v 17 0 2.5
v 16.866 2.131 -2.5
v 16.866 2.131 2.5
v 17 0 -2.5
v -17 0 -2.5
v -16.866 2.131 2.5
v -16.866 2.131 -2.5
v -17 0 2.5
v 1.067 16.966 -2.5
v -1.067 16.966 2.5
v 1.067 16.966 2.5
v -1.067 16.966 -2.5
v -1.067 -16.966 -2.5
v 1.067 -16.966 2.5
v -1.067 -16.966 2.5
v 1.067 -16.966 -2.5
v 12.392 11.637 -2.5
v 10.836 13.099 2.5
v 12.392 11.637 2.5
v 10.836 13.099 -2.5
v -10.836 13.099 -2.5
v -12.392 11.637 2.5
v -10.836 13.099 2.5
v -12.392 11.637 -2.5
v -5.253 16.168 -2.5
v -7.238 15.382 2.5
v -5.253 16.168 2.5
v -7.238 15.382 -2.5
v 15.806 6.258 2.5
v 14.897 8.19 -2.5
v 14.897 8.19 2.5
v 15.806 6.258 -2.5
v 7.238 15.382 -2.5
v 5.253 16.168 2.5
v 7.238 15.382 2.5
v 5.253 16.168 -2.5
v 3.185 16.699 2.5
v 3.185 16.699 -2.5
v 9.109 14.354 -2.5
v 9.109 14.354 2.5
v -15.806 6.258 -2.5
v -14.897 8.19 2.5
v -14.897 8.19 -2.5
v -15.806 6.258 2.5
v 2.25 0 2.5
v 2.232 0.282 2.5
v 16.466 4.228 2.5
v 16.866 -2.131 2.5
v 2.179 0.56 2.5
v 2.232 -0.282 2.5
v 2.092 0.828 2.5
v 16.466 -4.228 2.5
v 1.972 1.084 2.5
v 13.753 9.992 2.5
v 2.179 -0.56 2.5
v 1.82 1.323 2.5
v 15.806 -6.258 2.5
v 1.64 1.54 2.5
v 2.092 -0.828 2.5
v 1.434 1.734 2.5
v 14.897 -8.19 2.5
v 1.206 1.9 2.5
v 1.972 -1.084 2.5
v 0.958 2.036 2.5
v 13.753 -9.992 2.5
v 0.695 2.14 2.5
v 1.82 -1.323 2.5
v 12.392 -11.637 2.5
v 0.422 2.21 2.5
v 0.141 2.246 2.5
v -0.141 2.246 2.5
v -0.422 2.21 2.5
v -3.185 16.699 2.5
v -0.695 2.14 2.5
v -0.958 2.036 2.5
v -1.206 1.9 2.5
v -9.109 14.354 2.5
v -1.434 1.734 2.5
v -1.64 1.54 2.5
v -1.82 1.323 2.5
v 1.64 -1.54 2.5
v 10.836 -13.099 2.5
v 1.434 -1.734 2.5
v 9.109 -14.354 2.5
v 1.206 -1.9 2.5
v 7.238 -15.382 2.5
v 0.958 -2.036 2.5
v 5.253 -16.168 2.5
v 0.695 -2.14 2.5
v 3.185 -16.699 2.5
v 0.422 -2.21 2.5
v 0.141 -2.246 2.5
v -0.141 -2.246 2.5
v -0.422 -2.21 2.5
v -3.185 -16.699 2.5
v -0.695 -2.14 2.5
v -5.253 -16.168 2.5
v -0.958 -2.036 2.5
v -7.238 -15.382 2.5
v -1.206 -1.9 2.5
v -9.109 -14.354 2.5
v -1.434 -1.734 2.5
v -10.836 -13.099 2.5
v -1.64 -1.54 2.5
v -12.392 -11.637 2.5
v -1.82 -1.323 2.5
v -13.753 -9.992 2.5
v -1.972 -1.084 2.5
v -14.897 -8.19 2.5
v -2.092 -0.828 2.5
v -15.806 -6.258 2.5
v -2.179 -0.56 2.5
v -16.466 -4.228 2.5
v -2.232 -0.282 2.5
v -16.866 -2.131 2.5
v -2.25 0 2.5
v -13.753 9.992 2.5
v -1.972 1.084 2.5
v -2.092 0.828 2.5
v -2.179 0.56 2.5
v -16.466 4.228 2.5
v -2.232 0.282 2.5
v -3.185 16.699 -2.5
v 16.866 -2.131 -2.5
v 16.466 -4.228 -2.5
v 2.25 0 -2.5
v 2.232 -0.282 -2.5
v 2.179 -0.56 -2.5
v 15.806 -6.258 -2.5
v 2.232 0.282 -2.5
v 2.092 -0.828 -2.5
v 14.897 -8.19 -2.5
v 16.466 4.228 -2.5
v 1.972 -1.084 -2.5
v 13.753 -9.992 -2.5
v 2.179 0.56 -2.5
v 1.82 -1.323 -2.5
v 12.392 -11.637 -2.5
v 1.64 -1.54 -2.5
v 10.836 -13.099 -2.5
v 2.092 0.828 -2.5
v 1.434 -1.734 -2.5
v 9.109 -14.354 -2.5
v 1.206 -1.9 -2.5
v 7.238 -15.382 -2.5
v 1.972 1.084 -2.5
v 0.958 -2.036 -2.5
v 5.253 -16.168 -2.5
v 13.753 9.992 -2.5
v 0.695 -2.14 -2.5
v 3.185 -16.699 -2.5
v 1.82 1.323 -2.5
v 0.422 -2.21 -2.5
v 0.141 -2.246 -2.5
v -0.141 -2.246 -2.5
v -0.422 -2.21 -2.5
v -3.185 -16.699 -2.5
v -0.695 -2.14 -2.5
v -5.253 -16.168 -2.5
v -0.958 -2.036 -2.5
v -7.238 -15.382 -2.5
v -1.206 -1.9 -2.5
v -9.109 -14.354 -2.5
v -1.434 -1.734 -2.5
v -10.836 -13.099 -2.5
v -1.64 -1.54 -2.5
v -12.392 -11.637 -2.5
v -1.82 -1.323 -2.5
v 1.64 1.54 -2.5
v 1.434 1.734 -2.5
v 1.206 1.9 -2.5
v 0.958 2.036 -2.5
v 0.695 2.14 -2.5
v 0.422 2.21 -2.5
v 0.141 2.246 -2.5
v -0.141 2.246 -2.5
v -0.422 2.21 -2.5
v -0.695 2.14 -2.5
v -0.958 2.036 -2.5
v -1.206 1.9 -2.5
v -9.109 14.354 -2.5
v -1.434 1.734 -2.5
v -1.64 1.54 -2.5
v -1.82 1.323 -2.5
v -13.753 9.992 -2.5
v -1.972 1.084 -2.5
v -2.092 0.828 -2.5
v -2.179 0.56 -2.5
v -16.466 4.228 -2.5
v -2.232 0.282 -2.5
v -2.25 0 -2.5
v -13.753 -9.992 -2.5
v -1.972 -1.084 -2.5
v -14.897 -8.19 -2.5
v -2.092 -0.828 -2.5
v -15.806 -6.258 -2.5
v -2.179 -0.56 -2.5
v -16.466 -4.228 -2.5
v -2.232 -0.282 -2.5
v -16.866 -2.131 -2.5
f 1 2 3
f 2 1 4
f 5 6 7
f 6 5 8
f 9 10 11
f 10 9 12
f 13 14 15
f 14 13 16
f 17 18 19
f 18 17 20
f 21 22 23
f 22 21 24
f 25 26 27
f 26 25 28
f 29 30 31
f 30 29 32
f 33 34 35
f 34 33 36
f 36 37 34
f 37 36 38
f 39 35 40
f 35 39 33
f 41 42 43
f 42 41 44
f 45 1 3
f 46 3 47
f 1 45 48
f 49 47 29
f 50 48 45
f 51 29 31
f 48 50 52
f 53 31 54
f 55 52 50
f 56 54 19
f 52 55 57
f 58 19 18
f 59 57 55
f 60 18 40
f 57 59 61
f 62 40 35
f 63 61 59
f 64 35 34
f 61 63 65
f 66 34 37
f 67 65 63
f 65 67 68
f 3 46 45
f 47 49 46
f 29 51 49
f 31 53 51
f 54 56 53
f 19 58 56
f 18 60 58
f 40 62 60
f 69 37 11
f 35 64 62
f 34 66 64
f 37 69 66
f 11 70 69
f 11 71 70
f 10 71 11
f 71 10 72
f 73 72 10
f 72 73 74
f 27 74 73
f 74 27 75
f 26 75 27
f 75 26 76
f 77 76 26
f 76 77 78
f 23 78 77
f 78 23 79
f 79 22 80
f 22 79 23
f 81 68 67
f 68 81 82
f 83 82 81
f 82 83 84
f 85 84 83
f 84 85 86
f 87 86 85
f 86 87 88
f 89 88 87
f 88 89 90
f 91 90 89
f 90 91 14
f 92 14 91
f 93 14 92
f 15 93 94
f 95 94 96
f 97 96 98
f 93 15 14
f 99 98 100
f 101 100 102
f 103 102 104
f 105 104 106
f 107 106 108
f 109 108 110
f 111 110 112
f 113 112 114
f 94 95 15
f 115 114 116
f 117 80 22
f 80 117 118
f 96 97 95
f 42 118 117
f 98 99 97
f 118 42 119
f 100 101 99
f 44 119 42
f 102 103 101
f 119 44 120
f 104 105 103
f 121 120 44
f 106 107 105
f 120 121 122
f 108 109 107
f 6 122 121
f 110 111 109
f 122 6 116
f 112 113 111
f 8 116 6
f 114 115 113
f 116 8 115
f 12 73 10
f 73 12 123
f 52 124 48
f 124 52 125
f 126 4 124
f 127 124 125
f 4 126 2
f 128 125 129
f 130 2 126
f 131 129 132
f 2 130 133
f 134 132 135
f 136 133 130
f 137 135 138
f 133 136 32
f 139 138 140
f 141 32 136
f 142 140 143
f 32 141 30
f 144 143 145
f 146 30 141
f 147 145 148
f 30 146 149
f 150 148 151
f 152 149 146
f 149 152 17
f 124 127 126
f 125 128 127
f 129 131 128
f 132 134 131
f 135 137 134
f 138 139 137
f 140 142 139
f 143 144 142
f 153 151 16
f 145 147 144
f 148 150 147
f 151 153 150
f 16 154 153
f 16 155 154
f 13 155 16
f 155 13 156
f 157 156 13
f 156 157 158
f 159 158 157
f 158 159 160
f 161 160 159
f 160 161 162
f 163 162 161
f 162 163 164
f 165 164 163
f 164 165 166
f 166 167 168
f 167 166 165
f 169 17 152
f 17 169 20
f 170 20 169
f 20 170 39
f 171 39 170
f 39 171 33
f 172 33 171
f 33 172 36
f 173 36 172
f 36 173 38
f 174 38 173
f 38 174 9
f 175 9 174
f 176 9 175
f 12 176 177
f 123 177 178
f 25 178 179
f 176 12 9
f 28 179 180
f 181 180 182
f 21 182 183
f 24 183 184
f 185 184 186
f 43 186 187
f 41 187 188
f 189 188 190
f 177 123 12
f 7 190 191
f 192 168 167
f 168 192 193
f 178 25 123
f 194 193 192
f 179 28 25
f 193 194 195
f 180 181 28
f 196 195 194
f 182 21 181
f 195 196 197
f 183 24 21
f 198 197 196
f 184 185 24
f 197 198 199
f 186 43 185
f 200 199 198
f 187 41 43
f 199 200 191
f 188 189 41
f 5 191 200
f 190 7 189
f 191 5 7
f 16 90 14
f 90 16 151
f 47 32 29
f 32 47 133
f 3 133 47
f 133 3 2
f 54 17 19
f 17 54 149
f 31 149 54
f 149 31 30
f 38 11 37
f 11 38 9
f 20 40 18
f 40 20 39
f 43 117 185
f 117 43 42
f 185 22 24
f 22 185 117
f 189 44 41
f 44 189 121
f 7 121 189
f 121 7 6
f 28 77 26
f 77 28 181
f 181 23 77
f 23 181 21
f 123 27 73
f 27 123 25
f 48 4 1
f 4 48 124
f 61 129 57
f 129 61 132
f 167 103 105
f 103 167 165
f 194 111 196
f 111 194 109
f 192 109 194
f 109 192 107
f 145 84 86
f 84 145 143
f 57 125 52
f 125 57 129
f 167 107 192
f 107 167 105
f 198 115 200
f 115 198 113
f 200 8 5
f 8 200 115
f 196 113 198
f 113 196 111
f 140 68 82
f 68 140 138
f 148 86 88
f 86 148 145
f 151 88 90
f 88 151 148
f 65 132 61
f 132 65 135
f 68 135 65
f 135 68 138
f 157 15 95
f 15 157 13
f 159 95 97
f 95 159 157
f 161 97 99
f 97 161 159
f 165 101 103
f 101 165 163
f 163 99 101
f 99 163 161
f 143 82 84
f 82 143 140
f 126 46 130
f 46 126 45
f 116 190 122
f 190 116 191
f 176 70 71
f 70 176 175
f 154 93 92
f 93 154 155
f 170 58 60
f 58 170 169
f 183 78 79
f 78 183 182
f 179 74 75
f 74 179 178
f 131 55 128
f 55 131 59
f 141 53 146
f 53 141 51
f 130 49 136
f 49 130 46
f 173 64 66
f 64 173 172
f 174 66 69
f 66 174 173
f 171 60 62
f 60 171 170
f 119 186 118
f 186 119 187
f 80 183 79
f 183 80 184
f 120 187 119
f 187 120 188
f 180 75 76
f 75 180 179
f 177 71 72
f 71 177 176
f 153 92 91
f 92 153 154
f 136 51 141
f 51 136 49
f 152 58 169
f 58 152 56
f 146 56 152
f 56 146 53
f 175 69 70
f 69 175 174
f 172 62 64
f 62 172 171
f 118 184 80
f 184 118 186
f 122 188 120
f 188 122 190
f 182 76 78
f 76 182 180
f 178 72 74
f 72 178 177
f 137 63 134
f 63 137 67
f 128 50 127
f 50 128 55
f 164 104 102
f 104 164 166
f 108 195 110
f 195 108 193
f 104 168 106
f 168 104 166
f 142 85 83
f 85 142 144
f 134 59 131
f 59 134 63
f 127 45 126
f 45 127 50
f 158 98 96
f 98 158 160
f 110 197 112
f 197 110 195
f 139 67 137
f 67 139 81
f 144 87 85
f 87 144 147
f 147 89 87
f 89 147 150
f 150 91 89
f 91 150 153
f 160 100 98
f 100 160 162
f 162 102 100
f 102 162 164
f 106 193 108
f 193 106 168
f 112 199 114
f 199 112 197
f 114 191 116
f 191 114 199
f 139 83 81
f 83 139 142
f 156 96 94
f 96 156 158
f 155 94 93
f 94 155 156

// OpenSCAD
$fn = 50;


difference() {
	union() {
		translate(v = [0, 0, -2.5000000000]) {
			cylinder(h = 5, r = 17.0000000000);
		}
	}
	union() {
		translate(v = [0, 0, -100.0000000000]) {
			cylinder(h = 200, r = 2.2500000000);
		}
	}
}
